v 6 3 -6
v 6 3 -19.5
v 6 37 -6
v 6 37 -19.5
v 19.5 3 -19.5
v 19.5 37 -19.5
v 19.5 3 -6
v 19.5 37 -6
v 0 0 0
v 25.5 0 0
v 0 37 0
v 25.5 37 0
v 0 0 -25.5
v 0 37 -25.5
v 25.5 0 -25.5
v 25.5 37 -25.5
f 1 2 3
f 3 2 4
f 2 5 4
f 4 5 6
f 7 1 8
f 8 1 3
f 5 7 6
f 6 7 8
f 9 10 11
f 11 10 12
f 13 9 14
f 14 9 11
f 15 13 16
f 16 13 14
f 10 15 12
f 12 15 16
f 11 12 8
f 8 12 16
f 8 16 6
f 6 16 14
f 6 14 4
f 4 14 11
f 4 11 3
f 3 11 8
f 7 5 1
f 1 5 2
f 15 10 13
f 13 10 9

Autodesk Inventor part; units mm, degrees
ref_plane "YZ Plane" through (0, 0, 0) normal (1, 0, 0) x (0, 1, 0)
ref_plane "XZ Plane" through (0, 0, 0) normal (0, 1, 0) x (-1, 0, 0)
ref_plane "XY Plane" through (0, 0, 0) normal (0, 0, 1) x (1, 0, 0)
sketch "Esboço1" plane through (0, 0, 0) normal (0, 1, 0) x (-1, 0, 0)
  line L0 (0, 0) -> (-25.5, 0)
  line L1 (-25.5, 0) -> (-25.5, -25.5)
  line L2 (-25.5, -25.5) -> (0, -25.5)
  line L3 (0, -25.5) -> (0, 0)
  line L4 (-6, -19.5) -> (-19.5, -19.5)
  line L5 (-19.5, -19.5) -> (-19.5, -6)
  line L6 (-19.5, -6) -> (-6, -6)
  line L7 (-6, -6) -> (-6, -19.5)
  point P0 (-25.5, -12.75)
  point P1 (-19.5, -12.75)
  point P2 (-12.75, 0)
  point P3 (-12.75, -6)
  point P4 (-6, -12.75)
  dimension "d0" = 6
  dimension "d1" = 6
  dimension "d2" = 6
  dimension "d3" = 6
  dimension "d4" = 13.5
  dimension "d5" = 13.5
extrude "Extrusão1" add sketch "Esboço1" along normal blind 3 contours L4 L5 L6 L7
extrude "Extrusão2" add sketch "Esboço1" along normal blind 37
properties part number "Tampa_fotometro_3DPrint"
